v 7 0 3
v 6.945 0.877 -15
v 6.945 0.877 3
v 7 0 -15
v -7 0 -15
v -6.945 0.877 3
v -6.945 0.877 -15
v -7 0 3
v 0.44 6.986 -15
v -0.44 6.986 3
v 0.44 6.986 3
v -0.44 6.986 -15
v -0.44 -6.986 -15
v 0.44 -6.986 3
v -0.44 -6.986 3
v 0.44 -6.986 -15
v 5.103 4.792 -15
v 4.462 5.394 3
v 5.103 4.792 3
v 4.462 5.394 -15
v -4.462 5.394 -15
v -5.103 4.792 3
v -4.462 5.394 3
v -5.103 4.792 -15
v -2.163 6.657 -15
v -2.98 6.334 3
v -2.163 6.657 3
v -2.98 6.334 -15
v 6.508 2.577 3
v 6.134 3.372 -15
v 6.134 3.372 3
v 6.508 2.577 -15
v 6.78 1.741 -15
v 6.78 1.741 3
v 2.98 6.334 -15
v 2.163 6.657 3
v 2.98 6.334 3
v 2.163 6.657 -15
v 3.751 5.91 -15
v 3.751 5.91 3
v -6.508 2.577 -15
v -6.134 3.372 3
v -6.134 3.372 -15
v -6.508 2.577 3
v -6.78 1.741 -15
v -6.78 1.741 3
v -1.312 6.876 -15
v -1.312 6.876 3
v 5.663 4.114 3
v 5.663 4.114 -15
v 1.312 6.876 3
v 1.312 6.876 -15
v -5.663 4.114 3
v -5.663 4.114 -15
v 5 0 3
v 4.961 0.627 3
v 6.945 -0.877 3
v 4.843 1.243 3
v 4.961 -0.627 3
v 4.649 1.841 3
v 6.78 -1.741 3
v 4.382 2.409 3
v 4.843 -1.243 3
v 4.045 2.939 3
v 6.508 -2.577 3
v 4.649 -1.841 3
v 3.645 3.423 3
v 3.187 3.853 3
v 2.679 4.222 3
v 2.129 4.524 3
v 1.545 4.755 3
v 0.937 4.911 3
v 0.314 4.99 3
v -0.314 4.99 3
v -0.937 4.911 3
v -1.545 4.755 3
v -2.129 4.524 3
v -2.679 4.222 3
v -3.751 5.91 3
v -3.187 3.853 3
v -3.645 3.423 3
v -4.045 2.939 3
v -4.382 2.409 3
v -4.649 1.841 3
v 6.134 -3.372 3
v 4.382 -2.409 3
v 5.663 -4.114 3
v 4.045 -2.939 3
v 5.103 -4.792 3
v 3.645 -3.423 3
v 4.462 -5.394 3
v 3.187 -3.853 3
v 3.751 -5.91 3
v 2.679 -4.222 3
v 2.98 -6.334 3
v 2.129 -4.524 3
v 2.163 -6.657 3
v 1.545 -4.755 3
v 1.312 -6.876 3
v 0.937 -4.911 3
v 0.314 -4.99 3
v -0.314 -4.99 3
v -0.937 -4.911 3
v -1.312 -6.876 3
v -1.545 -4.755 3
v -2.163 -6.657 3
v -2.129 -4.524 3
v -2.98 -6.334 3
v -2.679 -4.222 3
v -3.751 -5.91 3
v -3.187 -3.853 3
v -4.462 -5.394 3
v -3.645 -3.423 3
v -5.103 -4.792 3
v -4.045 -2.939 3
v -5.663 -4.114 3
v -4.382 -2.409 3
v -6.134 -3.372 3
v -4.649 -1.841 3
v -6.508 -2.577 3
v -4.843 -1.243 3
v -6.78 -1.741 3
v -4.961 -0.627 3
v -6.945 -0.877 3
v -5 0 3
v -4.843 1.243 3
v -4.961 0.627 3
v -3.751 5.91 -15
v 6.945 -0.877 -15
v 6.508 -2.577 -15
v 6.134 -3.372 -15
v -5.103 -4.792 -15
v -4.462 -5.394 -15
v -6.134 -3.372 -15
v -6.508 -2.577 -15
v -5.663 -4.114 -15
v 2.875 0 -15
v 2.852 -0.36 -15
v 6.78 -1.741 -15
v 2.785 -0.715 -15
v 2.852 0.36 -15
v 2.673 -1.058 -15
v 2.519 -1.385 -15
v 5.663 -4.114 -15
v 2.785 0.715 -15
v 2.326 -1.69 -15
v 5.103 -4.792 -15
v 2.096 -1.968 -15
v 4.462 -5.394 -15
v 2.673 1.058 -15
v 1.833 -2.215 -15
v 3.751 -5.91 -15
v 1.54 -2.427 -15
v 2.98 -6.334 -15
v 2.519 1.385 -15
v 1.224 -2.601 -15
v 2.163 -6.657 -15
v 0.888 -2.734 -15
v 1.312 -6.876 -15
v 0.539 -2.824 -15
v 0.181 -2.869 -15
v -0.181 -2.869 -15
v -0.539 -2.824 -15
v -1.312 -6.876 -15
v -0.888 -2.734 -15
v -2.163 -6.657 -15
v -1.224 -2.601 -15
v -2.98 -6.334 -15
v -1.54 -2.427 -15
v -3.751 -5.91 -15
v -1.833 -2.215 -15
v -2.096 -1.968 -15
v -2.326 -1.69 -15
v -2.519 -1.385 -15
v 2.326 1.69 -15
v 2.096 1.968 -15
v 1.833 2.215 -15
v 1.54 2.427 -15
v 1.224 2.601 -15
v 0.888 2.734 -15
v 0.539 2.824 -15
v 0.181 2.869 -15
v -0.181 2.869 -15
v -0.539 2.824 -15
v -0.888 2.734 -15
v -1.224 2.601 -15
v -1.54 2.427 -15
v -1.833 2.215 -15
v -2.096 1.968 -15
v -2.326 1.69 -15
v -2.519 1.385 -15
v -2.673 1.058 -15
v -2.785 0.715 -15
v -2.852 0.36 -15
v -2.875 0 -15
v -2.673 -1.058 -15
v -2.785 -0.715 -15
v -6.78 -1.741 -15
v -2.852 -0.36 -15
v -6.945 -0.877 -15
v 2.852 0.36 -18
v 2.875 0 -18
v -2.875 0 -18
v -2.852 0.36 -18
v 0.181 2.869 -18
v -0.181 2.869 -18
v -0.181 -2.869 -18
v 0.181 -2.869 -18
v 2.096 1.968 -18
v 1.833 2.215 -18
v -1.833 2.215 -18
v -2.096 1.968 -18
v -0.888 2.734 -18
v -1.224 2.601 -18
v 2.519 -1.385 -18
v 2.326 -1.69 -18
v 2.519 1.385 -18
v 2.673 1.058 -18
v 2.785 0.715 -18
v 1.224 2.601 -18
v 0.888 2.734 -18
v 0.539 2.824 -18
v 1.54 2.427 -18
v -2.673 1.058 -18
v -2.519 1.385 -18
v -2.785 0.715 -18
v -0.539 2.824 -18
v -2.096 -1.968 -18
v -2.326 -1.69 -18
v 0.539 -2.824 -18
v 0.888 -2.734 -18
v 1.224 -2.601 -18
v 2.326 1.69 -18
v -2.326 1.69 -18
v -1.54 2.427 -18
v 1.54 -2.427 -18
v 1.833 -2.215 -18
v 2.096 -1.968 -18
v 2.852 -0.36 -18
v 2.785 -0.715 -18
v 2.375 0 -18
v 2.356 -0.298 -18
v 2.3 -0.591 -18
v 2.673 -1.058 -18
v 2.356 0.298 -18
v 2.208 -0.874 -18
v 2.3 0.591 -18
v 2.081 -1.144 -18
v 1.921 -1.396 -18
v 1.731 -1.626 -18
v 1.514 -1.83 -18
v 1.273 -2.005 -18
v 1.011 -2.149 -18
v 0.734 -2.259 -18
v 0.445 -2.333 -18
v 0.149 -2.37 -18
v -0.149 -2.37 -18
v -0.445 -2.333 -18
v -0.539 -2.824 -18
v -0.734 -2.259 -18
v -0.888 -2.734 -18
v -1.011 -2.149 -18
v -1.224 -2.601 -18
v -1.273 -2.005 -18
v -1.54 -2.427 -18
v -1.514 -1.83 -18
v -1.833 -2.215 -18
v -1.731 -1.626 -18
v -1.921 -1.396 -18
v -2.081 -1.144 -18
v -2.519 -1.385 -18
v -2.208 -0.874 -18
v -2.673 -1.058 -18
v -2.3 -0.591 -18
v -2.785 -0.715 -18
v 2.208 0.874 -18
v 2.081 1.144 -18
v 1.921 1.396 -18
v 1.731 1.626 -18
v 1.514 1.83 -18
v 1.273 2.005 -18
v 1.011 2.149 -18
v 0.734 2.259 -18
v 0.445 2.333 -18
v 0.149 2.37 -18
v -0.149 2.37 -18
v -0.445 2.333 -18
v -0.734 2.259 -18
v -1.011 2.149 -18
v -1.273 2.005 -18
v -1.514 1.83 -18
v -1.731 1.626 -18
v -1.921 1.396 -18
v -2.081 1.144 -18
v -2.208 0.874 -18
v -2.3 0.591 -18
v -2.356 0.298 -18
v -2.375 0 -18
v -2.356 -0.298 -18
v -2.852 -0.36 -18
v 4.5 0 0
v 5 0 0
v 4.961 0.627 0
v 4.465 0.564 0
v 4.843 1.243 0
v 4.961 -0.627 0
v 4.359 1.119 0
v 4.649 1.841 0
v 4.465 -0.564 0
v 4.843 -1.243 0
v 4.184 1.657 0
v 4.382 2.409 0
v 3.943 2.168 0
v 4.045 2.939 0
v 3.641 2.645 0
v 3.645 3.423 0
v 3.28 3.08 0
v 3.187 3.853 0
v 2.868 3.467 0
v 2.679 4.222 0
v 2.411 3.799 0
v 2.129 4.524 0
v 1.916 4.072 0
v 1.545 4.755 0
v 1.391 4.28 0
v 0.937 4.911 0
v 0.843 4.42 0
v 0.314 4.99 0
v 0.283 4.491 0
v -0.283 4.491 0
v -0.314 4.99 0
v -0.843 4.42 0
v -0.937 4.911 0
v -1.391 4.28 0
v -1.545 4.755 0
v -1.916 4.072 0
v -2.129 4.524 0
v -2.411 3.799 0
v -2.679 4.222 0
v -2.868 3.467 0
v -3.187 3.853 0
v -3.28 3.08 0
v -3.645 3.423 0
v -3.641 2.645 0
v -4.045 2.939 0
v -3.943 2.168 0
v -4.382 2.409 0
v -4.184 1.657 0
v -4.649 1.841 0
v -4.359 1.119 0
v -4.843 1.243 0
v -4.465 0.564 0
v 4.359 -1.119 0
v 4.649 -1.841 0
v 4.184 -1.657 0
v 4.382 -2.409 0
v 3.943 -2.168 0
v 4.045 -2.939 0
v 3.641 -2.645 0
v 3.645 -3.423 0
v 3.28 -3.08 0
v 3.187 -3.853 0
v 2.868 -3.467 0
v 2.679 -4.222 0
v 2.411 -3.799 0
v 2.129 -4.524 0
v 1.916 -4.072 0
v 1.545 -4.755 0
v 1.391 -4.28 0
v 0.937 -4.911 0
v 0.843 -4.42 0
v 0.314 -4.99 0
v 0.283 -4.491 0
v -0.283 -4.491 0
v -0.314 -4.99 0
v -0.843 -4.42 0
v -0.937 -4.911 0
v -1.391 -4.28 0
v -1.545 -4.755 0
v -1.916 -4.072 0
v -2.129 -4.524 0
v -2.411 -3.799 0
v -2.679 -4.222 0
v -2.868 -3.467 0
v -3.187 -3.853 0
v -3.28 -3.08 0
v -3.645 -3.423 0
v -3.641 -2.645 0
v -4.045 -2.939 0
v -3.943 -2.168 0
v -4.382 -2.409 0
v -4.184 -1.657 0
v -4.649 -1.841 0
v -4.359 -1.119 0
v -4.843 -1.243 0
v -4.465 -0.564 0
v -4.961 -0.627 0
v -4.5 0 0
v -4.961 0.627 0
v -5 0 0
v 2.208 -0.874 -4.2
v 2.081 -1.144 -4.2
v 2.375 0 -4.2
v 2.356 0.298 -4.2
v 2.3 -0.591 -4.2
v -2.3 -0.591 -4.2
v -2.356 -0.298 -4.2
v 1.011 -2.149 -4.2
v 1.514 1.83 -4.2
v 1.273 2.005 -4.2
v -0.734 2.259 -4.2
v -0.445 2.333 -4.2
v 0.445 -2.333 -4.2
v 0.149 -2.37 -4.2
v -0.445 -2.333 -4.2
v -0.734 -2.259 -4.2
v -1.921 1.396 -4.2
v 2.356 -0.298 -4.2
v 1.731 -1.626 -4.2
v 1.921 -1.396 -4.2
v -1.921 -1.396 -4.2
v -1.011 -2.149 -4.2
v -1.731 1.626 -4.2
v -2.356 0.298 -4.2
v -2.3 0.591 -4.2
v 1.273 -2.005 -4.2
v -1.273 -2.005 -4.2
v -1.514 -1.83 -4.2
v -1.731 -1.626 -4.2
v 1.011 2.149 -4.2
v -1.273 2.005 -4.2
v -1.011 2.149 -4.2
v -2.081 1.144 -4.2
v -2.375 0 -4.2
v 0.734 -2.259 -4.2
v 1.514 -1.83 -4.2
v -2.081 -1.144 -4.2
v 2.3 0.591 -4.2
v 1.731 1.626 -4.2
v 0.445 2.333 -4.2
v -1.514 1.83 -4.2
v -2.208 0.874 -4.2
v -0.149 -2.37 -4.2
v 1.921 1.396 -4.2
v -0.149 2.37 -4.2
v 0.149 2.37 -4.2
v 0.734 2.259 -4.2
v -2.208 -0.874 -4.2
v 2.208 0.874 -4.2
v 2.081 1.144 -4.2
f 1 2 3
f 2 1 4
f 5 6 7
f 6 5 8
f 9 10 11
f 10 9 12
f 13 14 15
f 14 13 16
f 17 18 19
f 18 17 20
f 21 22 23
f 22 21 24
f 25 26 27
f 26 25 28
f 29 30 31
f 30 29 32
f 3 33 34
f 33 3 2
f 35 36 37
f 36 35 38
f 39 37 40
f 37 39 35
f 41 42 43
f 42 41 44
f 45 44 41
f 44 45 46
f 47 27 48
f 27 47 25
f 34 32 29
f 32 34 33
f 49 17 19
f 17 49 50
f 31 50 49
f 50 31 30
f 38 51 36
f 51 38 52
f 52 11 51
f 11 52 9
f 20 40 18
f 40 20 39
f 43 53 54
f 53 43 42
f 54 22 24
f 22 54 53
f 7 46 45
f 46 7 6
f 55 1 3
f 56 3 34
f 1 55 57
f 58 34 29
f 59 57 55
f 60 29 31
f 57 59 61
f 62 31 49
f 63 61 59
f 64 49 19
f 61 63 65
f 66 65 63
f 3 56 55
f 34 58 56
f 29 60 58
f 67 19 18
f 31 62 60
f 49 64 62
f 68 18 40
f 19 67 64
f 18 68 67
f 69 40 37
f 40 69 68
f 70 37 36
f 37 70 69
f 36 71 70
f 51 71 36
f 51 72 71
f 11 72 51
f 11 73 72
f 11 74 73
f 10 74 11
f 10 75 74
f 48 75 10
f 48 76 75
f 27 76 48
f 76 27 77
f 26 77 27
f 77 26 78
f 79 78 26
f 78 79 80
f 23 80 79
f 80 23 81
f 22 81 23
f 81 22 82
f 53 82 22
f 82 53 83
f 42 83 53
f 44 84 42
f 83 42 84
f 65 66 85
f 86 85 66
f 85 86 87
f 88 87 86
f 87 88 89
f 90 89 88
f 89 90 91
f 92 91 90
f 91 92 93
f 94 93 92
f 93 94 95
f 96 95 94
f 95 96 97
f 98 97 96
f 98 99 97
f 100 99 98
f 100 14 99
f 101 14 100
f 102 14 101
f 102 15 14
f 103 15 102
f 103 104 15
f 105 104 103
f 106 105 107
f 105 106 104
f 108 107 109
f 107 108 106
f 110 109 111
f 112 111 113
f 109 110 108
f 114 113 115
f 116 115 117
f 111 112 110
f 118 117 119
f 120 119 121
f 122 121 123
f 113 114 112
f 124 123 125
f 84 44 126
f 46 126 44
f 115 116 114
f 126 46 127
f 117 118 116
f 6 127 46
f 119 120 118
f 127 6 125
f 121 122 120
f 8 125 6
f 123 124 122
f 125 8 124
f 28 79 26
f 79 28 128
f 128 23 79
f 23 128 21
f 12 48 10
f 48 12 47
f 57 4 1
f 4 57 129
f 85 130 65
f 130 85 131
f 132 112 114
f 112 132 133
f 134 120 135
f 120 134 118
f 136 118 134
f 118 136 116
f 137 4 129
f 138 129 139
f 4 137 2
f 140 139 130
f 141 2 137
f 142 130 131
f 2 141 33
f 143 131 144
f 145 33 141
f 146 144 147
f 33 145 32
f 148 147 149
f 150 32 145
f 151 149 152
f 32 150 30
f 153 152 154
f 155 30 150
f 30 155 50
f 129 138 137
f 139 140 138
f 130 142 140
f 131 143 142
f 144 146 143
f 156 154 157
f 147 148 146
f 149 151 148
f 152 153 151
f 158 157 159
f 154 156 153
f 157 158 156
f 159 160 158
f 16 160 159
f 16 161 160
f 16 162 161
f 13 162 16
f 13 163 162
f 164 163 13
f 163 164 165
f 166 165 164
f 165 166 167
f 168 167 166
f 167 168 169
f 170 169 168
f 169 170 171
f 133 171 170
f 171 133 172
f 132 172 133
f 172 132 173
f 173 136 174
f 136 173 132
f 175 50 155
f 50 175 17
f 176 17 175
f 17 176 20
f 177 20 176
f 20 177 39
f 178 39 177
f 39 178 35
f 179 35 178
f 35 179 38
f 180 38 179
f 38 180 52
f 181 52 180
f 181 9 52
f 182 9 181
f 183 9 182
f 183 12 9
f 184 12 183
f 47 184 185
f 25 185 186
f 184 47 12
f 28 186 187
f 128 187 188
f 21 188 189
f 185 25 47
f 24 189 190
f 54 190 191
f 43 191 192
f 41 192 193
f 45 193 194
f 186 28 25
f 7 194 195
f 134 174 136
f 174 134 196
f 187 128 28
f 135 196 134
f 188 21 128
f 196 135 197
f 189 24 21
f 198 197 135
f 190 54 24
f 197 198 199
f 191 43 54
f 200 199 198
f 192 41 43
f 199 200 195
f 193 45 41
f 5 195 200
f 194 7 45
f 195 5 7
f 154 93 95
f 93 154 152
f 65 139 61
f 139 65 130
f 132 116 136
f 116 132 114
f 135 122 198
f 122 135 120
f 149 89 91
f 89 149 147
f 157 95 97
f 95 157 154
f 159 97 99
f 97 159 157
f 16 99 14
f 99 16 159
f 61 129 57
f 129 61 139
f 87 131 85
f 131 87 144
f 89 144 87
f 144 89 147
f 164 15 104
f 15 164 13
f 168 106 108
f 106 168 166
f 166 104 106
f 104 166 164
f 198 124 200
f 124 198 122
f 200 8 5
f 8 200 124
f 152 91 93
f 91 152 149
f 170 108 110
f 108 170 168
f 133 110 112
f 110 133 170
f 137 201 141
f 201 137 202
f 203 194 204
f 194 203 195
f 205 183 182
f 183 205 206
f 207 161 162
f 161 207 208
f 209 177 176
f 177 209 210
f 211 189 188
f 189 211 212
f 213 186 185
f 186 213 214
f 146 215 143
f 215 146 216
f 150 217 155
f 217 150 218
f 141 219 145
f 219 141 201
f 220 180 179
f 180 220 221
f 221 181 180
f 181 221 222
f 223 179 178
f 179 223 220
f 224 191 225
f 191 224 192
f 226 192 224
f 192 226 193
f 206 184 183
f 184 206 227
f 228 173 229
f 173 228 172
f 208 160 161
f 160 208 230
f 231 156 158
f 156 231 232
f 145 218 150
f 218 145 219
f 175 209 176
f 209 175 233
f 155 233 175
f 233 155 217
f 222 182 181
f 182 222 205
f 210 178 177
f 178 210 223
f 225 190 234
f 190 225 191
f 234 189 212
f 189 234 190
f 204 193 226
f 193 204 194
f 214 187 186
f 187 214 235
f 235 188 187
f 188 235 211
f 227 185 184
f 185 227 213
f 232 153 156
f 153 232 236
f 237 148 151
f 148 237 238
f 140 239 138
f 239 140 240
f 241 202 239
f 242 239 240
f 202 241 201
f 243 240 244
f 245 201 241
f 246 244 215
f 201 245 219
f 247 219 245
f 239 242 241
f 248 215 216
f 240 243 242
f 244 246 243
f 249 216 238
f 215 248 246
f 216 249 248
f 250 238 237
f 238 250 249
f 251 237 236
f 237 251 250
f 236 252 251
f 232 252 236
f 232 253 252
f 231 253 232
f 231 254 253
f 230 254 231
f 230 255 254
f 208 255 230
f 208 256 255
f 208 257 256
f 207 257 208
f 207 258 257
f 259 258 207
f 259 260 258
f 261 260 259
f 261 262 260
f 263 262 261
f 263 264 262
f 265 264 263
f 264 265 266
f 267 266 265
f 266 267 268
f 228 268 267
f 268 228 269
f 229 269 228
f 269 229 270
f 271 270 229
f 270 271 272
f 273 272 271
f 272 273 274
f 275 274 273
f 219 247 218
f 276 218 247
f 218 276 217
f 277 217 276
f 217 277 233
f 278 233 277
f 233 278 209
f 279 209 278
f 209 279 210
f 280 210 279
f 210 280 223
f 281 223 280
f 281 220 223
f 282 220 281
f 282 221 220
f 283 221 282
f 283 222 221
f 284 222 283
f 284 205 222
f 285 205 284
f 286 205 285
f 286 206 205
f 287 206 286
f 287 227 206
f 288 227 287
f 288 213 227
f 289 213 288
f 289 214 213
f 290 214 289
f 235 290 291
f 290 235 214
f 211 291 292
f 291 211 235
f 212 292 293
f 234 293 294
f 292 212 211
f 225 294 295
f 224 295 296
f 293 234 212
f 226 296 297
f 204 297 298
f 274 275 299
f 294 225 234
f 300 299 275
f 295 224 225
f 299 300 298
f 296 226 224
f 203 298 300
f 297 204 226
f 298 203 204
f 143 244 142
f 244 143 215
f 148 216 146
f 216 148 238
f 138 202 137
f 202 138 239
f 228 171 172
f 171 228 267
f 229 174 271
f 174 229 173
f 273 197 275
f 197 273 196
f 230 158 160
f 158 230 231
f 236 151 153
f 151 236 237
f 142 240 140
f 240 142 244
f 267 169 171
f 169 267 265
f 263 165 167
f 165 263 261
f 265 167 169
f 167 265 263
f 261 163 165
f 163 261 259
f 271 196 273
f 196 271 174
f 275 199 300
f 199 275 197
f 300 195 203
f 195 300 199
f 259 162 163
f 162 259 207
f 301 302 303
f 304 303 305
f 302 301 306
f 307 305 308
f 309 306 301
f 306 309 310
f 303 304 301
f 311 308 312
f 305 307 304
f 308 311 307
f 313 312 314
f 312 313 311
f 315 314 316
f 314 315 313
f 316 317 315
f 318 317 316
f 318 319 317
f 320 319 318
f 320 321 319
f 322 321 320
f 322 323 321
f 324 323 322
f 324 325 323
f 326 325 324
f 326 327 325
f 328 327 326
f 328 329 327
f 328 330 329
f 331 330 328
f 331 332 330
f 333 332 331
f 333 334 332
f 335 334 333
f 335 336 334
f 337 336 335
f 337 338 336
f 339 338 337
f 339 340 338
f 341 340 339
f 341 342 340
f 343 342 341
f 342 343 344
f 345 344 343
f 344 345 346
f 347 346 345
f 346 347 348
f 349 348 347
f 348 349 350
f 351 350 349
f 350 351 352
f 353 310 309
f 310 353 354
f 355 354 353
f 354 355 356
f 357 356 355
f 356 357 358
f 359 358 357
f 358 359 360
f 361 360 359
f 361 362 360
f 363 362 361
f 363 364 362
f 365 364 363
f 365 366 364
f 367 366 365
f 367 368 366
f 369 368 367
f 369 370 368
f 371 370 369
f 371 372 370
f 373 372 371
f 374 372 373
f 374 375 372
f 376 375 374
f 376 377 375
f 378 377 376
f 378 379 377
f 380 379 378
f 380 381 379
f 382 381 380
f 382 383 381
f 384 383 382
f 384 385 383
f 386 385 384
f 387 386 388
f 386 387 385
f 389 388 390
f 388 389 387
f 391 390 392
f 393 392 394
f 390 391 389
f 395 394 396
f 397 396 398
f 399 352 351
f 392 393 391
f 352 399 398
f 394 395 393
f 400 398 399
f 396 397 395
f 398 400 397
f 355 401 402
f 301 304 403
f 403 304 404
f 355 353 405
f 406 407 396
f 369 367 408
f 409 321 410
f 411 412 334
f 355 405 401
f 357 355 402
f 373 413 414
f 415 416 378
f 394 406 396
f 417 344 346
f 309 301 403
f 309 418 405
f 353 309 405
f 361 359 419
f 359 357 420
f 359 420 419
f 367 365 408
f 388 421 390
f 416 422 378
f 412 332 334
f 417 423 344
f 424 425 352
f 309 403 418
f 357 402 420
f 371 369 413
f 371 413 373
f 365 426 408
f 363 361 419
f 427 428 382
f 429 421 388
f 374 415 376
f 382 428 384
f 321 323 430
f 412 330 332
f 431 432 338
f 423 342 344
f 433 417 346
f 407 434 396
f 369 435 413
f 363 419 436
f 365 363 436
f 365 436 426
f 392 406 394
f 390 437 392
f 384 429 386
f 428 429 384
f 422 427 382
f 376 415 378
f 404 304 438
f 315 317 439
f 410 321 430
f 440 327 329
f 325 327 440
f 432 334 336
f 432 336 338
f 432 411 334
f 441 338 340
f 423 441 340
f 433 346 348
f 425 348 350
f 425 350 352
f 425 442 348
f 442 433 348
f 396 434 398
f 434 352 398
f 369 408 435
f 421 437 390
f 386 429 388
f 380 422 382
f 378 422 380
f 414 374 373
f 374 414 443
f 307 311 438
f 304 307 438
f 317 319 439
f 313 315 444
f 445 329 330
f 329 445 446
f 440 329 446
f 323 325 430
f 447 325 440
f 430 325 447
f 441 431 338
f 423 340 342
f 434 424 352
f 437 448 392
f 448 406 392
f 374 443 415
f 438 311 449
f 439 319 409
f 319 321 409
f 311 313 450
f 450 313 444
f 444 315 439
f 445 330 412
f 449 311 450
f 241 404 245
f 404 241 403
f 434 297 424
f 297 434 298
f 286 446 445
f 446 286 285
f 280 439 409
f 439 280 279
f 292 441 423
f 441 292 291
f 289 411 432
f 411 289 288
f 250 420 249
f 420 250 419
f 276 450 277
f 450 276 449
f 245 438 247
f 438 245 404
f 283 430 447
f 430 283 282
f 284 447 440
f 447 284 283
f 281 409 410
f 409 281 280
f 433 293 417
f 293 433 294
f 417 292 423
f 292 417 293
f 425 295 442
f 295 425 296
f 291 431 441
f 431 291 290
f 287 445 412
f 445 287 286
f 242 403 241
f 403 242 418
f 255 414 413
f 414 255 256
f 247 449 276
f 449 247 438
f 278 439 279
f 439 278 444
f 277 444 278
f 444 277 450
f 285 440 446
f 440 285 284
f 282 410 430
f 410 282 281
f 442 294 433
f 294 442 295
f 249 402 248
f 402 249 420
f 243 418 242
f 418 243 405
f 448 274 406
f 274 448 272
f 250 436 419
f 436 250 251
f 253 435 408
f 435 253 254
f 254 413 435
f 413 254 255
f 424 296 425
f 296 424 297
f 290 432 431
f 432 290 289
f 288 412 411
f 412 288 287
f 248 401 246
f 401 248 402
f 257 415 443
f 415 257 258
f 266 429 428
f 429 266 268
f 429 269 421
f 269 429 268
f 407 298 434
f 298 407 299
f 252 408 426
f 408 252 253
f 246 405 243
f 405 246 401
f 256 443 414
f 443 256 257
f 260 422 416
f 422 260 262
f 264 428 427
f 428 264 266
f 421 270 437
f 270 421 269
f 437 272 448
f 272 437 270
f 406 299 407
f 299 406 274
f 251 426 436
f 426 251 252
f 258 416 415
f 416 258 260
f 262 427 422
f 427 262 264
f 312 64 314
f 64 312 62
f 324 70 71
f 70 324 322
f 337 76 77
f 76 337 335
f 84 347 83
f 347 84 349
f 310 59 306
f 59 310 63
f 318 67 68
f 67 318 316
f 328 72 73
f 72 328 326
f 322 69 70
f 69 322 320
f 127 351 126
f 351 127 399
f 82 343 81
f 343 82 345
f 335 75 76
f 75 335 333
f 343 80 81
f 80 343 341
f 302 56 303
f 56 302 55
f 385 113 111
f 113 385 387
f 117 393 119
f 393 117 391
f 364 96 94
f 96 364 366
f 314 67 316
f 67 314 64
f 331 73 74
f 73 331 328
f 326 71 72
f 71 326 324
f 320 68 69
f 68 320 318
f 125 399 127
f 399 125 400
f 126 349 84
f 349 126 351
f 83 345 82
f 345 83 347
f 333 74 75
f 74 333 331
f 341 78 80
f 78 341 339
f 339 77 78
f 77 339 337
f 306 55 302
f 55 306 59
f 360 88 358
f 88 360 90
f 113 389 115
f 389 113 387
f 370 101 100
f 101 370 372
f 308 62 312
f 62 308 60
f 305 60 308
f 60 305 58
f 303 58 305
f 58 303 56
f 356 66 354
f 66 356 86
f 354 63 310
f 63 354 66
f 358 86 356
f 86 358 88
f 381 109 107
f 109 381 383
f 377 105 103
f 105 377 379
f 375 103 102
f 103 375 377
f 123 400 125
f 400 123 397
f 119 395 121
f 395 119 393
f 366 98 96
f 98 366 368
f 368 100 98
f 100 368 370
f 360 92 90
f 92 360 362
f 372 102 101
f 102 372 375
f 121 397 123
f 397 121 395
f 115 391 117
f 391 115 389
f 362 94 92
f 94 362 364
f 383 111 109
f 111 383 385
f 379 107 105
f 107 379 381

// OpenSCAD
$fn = 50;

difference() {
	union() {
		translate(v = [0, 0, -15.0]) {
			cylinder(h = 18, r = 7.0);
		}
		#translate(v = [0, 0, -18.0]) {
			cylinder(h = 18, r = 2.875);
		}
	}
	union() {
		translate(v = [0, 0, 0]) {
			rotate(a = [0, 0, 0]) {
				difference() {
					union() {
						translate(v = [0, 0, -18.0]) {
							cylinder(h = 18, r = 2.25);
						}
						translate(v = [0, 0, -4.2]) {
							cylinder(h = 4.2, r1 = 2.375, r2 = 4.5);
						}
						translate(v = [0, 0, -18.0]) {
							cylinder(h = 18, r = 2.375);
						}
						translate(v = [0, 0, -18.0]) {
							cylinder(h = 18, r = 2.25);
						}
					}
					union();
				}
			}
		}
		#cylinder(h = 3, r = 5.0);
	}
}
